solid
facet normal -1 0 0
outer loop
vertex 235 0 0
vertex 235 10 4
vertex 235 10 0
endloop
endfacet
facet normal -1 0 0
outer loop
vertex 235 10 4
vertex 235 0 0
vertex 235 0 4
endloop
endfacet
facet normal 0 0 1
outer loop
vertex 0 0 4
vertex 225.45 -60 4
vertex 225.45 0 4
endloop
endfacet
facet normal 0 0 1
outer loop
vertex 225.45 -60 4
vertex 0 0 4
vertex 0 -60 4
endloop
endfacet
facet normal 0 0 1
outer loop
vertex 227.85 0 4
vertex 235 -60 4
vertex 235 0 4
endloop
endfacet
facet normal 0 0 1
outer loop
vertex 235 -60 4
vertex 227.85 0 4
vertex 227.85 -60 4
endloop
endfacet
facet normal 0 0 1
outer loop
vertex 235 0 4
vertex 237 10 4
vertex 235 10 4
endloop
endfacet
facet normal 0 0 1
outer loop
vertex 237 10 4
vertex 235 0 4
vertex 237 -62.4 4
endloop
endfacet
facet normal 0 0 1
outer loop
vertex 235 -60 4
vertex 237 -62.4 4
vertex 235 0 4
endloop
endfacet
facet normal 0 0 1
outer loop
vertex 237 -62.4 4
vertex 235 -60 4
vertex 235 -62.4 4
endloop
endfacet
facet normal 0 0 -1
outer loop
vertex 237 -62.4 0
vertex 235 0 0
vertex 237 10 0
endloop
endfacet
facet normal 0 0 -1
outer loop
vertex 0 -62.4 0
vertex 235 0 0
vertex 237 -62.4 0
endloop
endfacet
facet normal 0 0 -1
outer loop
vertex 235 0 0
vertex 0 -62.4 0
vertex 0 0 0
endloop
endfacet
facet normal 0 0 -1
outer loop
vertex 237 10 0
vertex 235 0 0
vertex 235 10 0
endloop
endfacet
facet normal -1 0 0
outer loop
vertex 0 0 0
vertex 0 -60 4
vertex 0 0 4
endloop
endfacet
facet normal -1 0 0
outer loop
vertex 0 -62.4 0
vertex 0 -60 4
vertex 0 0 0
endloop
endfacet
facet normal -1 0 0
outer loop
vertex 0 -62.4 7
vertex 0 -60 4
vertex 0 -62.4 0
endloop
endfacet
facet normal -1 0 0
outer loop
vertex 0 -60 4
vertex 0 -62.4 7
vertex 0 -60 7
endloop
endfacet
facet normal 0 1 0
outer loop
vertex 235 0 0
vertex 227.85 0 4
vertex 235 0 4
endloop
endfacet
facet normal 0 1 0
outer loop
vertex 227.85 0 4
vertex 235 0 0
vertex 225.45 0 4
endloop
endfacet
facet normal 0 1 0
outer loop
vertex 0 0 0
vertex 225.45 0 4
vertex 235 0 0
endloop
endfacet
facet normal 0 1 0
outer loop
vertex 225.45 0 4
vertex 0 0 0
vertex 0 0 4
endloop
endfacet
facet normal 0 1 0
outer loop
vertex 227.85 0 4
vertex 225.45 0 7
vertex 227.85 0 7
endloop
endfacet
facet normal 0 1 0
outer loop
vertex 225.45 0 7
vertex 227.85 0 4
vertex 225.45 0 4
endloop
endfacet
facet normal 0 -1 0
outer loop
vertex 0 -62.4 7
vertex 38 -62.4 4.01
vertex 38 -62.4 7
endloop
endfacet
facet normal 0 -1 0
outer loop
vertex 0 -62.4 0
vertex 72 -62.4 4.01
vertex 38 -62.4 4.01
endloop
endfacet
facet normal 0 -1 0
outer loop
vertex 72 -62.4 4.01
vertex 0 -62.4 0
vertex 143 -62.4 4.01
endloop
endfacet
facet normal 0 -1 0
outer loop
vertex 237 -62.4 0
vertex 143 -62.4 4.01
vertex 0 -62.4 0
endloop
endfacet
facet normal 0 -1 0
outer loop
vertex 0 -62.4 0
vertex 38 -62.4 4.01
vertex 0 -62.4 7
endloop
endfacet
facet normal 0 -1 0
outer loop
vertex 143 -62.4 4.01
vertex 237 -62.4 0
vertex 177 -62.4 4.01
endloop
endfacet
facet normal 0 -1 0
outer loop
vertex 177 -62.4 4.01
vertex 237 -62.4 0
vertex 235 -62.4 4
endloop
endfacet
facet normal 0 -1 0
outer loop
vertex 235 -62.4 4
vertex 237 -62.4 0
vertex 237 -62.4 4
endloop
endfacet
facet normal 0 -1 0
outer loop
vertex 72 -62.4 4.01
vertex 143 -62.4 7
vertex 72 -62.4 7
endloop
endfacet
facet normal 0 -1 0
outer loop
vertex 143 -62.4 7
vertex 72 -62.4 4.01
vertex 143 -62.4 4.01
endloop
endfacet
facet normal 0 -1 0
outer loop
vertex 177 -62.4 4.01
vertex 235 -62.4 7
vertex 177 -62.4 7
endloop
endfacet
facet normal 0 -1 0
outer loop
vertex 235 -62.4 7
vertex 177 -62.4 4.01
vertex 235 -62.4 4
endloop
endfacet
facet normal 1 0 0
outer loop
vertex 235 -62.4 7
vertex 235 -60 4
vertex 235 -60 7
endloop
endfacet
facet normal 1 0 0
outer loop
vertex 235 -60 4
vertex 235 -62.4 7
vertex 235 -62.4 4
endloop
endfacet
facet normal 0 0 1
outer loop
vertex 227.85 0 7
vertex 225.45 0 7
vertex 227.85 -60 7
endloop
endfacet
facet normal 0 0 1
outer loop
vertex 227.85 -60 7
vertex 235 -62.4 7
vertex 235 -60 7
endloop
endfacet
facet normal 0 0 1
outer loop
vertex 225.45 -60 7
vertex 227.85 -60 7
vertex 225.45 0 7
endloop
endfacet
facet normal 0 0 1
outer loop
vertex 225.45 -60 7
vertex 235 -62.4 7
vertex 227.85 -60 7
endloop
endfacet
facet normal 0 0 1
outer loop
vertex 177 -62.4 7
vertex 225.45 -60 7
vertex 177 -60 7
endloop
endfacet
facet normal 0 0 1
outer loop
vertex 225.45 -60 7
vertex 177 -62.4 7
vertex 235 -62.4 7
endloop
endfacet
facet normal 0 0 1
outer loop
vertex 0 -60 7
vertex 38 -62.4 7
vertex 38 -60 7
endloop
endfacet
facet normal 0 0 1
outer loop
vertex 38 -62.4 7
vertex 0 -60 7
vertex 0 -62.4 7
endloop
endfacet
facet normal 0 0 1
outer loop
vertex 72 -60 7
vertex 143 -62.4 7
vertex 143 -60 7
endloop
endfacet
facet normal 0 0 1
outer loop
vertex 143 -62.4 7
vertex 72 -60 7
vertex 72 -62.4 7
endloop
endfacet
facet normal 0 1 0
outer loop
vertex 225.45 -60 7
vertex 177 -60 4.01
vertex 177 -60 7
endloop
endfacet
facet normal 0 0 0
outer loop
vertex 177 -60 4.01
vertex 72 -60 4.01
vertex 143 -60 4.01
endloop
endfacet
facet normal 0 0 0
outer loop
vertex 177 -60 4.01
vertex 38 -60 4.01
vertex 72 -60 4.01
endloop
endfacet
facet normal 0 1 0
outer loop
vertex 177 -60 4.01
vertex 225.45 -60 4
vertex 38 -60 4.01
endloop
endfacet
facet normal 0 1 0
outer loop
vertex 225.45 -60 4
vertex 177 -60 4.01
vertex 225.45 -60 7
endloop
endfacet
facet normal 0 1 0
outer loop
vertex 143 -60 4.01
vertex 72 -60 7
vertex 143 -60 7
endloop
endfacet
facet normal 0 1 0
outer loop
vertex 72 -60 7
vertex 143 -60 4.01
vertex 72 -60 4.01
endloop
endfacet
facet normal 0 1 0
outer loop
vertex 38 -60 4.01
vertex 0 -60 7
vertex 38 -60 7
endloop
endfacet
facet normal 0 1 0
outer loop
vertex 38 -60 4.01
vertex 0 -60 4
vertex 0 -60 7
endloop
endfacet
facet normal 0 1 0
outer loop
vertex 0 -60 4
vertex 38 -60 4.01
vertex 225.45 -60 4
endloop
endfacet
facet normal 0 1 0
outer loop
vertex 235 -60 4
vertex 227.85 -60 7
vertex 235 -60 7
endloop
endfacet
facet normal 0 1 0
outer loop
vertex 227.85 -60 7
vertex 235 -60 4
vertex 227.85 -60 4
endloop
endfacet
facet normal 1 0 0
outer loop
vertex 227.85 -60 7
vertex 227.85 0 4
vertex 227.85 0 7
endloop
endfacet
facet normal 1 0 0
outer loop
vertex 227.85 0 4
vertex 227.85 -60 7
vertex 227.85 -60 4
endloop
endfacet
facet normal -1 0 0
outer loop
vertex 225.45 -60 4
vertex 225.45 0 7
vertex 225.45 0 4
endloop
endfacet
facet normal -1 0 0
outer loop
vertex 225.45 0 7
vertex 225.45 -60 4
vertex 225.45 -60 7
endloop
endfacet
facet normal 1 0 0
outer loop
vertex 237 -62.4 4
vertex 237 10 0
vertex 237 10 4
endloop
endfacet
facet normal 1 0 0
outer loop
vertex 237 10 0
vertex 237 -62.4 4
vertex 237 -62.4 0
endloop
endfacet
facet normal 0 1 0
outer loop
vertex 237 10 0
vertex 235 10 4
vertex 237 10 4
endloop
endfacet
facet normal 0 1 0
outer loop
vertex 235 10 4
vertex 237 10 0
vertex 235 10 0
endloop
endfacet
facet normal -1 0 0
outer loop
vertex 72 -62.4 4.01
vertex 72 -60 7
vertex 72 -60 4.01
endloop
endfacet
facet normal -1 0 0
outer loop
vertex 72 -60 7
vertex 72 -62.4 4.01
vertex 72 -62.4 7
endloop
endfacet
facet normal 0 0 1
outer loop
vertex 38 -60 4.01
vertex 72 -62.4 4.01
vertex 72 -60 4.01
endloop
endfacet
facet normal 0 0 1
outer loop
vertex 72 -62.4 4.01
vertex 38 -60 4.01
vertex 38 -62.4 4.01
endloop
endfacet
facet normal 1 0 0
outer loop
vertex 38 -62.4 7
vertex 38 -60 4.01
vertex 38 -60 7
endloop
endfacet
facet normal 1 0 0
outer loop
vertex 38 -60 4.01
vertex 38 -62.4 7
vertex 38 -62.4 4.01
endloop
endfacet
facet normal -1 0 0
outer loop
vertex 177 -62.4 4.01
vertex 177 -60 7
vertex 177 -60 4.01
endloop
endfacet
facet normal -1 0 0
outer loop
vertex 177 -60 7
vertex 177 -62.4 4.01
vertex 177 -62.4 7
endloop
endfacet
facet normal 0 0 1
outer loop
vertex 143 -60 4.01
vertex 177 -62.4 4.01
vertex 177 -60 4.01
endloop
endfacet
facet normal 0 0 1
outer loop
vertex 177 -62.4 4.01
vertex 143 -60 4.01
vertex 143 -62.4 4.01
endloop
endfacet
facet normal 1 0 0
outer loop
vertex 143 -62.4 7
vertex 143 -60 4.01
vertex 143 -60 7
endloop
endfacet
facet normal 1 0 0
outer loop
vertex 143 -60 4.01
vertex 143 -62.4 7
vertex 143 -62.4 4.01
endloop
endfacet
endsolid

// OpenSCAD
// Paper jig for an Ender 3 / 3 Pro: puts every homework sheet in the same place,
// with nothing under the paper and no tape.
//
// A tray that hangs off the bed's front edge on two clips (-D 'part="clips"'),
// one at each back corner, outside the paper. Each clip is a small spring clamp:
//
//   * a rigid shelf reaches 45 mm forward under the tray, so the tray sits on it
//     like a shelf on a bracket, and a sprung arm on top pinches it down;
//   * a rigid arm lies flat on top of the bed (that is what keeps the tray level
//     with the bed, whatever the plate's exact thickness), and a sprung finger
//     underneath pinches the bed plate up against it.
//
// The springs only add grip: where the jig sits is decided by the rigid faces,
// so it comes back to the same place every time. Nothing merely rests in place
// (the first hooks did, and the tray's weight tipped them straight off).
//
// The two clips differ. The nozzle and fan shroud pass low over the bed's front
// LEFT corner while the pen writes, so the left clip is flat and short on top
// (under 2.5 mm tall, 8.5 mm onto the bed) and has a side plate that stops
// against the bed's left edge. Nothing passes over the right corner, so the
// right clip has a long, thick arm on top: the stronger clamp of the two.
//
// For the bare bed plate (no glass): the clips are sized to its thickness, bed_t.
//
// The sheet goes on turned round (title towards you). Its top edge butts against
// the front lip and its left edge (on your right, since it's turned round)
// against the side wall; the tray's side tab sits against the bed's
// right edge, so the jig goes back in the same place every time. Two binder
// clips, through the gaps in the lip, hold the sheet's top to the tray. The pen
// never reaches the tray, so the clips are out of its way.
//
// Print the tray upright as oriented, PLA/PETG, 0.2 mm layers, no supports. It is
// longer than an Ender 3's 220 mm bed is wide: turn it 45 degrees in the slicer.
// The clips (openscad -D 'part="clips"') print lying on their sides as laid out.
//
// Coordinates: x along the bed's front edge (0 = bed's left edge), y = 0 at the
// bed's front edge and negative in front of it, z = 0 at the bed's surface.

bed_w     = 235;    // width of the bed's surface (glass or bare)
paper_w   = 215.9;  // US Letter; 210 for A4
paper_l   = 279.4;  // the sheet ends paper_l - overhang behind the front edge
overhang  = 60;     // tray depth: the sheet ends 15 mm before the back edge, clear of the back clips
tray_t    = 4;      // tray thickness below the surface; its back face is what bears on the bed's edge
bed_t     = 3.2;    // the bed plate's thickness at its front edge (1/8 inch, measured)
spine_t   = 4;      // the clip's back, between the tray and the bed's edge
tab_reach = 10;     // how far the side tab runs on past the tray's back, beside the bed
clip_w_r  = 6.6;    // right clip: fits between the side wall and the tab
clip_w_l  = 8;      // left clip: fits in the strip left of the sheet
cap_t     = 1.6;    // left clip's side plate, against the bed's left edge
shelf_l   = 45;     // shelf under the tray: reaches past where the tray's weight acts
tray_grip = 0.55;   // how far the sprung arm is pushed up by the tray (about 4 N)
bed_grip_r = 0.8;   // how far the bed pushes the right clip's finger down (about 6 N)
bed_grip_l = 0.9;   // and the left clip's (about 7 N)
fence_h   = 3;      // lip and wall height above the tray
fence_t   = 2.4;
tab_t     = 2;      // side tab against the bed's right edge (the only thing beside the bed)
gap_w     = 34;     // gaps in the lip for the binder clips
gaps      = [55, 160];  // their centres (x)

paper_right = (bed_w + paper_w) / 2;  // sheet centred across the bed

module jig() {
    difference() {
        union() {
            // tray, its top flush with the bed surface
            translate([0, -overhang - fence_t, -tray_t]) cube([bed_w, overhang + fence_t, tray_t]);
            // front lip: the sheet's top edge
            translate([0, -overhang - fence_t, 0]) cube([bed_w, fence_t, fence_h]);
            // side wall: the sheet's left edge (on your right)
            translate([paper_right, -overhang - fence_t, 0]) cube([fence_t, overhang + fence_t, fence_h]);
            // side tab: hugs the bed's right edge so the jig always sits in the same place
            translate([bed_w, -overhang - fence_t, -tray_t]) cube([tab_t, overhang + fence_t + tab_reach, tray_t]);
        }
        // gaps in the lip, for the clips that hold the sheet
        for (c = gaps) translate([c - gap_w / 2, -overhang - fence_t - 1, 0.01]) cube([gap_w, fence_t + 2, fence_h + 1]);
    }
}

// ---- the clips -------------------------------------------------------------
// Drawn as 2D profiles in the plane [y, z]: y = 0 at the tray's back face (the
// bed's front edge is at y = spine_t), z = 0 at the bed's surface. A clip is
// the same profile all the way along x, so it prints lying on its side: every
// spring is laid down in-plane, which is the strong way, and nothing overhangs.

zb = -bed_t;  // the bed's underside

// The tray's side of a clip, the same on both.
module tray_side() {
    // shelf: the tray sits on this
    polygon([[0.01, -tray_t], [-shelf_l + 1.5, -tray_t], [-shelf_l, -tray_t - 1],
             [-shelf_l, -tray_t - 2.5], [0.01, -tray_t - 5]]);
    // sprung arm over the tray: clear of it except at the bump near its tip,
    // 2 mm thick at the root thinning to 1.4, nose turned up to lead the tray in
    polygon([[0.01, 0.15], [-14.2, 0.15], [-16, -tray_grip], [-19.5, 1.0], [-19.5, 2.1],
             [-16.2, 1.55], [0.01, 2.15]]);
}

// Right clip: long rigid arm on top of the bed, finger underneath rooted at
// the spine and pressing up 19 mm in, under-beam below it as its hard stop.
module clip_right_profile() {
    top = 4.5;
    difference() {
        union() {
            tray_side();
            translate([0, -10.7]) square([spine_t, 10.7 + top]);                          // spine
            polygon([[spine_t - 0.01, 0], [spine_t + 19.5, 0], [spine_t + 22, 1.0],       // arm on the bed
                     [spine_t + 22, top - 1.5], [spine_t + 20.5, top], [spine_t - 0.01, top]]);
            polygon([[spine_t - 0.01, zb - 0.25], [spine_t + 17.3, zb + bed_grip_r - 0.5],  // finger
                     [spine_t + 19, zb + bed_grip_r], [spine_t + 23.5, zb - 0.9],
                     [spine_t + 23.5, zb - 2.1], [spine_t + 19, zb + bed_grip_r - 2.0],
                     [spine_t - 0.01, zb - 2.65]]);
            polygon([[spine_t - 0.01, -6.7], [spine_t + 14.5, -6.7], [spine_t + 15.5, -5.9],  // under-beam
                     [spine_t + 21, -5.9], [spine_t + 21, -9.7], [spine_t + 20, -10.7],
                     [spine_t - 0.01, -10.7]]);
        }
        corner_reliefs();
    }
}

// Left clip: short thin arm on top of the bed (the nozzle passes behind it),
// finger underneath rooted on a post at the far end and pressing up 5.5 mm in,
// under the arm; the post is also the hard stop if the tray is leant on.
module clip_left_profile() {
    difference() {
        union() {
            tray_side();
            translate([0, -10.2]) square([spine_t, 10.2 + 2.15]);                         // spine
            polygon([[spine_t - 0.01, 0], [spine_t + 7, 0], [spine_t + 8.5, 0.8],         // arm on the bed
                     [spine_t + 8.5, 1.8], [spine_t - 0.01, 1.8]]);
            polygon([[spine_t + 24.51, zb - 0.25], [spine_t + 7.2, zb + bed_grip_l - 0.5],  // finger
                     [spine_t + 5.5, zb + bed_grip_l], [spine_t + 3.4, zb + bed_grip_l - 0.6],
                     [spine_t + 3.4, zb + bed_grip_l - 1.8], [spine_t + 7.2, zb + bed_grip_l - 1.9],
                     [spine_t + 24.51, zb - 2.65]]);
            polygon([[spine_t - 0.01, zb - 0.25], [spine_t + 2.2, zb - 0.25], [spine_t + 2.2, -5.8],  // under-beam,
                     [spine_t + 9, -5.8], [spine_t + 10, -6.7], [spine_t + 24.5, -6.7],              // lift stop, post
                     [spine_t + 24.5, zb - 0.2], [spine_t + 26.8, zb - 0.2], [spine_t + 28, zb - 1.4],
                     [spine_t + 28, -9.2], [spine_t + 27, -10.2], [spine_t - 0.01, -10.2]]);
        }
        corner_reliefs();
    }
}

// Printed inside corners come out rounded; these nicks keep that rounding from
// holding the bed's edge and the tray's edge off the faces they locate against.
module corner_reliefs() {
    translate([spine_t, 0]) circle(r = 0.5, $fn = 16);
    translate([0, -tray_t]) circle(r = 0.5, $fn = 16);
}

// The side plate on the left clip's outer end: stops against the bed's left edge.
module left_cap_profile() {
    translate([spine_t - 0.01, -1.6]) square([8.51, 1.6 + 1.8]);
}

module clip_right() { linear_extrude(clip_w_r) clip_right_profile(); }
module clip_left() {
    linear_extrude(cap_t) { clip_left_profile(); left_cap_profile(); }
    translate([0, 0, cap_t - 0.01]) linear_extrude(clip_w_l + 0.01) clip_left_profile();
}

module clips() {  // one of each, lying on their sides for printing (left clip's side plate down)
    translate([shelf_l, 11]) clip_right();
    translate([shelf_l, 33]) clip_left();
}

part = "jig";  // openscad -D 'part="clips"' for the clips
if (part == "jig") translate([0, 0, tray_t]) jig();  // sitting on the print bed
if (part == "clips") clips();
